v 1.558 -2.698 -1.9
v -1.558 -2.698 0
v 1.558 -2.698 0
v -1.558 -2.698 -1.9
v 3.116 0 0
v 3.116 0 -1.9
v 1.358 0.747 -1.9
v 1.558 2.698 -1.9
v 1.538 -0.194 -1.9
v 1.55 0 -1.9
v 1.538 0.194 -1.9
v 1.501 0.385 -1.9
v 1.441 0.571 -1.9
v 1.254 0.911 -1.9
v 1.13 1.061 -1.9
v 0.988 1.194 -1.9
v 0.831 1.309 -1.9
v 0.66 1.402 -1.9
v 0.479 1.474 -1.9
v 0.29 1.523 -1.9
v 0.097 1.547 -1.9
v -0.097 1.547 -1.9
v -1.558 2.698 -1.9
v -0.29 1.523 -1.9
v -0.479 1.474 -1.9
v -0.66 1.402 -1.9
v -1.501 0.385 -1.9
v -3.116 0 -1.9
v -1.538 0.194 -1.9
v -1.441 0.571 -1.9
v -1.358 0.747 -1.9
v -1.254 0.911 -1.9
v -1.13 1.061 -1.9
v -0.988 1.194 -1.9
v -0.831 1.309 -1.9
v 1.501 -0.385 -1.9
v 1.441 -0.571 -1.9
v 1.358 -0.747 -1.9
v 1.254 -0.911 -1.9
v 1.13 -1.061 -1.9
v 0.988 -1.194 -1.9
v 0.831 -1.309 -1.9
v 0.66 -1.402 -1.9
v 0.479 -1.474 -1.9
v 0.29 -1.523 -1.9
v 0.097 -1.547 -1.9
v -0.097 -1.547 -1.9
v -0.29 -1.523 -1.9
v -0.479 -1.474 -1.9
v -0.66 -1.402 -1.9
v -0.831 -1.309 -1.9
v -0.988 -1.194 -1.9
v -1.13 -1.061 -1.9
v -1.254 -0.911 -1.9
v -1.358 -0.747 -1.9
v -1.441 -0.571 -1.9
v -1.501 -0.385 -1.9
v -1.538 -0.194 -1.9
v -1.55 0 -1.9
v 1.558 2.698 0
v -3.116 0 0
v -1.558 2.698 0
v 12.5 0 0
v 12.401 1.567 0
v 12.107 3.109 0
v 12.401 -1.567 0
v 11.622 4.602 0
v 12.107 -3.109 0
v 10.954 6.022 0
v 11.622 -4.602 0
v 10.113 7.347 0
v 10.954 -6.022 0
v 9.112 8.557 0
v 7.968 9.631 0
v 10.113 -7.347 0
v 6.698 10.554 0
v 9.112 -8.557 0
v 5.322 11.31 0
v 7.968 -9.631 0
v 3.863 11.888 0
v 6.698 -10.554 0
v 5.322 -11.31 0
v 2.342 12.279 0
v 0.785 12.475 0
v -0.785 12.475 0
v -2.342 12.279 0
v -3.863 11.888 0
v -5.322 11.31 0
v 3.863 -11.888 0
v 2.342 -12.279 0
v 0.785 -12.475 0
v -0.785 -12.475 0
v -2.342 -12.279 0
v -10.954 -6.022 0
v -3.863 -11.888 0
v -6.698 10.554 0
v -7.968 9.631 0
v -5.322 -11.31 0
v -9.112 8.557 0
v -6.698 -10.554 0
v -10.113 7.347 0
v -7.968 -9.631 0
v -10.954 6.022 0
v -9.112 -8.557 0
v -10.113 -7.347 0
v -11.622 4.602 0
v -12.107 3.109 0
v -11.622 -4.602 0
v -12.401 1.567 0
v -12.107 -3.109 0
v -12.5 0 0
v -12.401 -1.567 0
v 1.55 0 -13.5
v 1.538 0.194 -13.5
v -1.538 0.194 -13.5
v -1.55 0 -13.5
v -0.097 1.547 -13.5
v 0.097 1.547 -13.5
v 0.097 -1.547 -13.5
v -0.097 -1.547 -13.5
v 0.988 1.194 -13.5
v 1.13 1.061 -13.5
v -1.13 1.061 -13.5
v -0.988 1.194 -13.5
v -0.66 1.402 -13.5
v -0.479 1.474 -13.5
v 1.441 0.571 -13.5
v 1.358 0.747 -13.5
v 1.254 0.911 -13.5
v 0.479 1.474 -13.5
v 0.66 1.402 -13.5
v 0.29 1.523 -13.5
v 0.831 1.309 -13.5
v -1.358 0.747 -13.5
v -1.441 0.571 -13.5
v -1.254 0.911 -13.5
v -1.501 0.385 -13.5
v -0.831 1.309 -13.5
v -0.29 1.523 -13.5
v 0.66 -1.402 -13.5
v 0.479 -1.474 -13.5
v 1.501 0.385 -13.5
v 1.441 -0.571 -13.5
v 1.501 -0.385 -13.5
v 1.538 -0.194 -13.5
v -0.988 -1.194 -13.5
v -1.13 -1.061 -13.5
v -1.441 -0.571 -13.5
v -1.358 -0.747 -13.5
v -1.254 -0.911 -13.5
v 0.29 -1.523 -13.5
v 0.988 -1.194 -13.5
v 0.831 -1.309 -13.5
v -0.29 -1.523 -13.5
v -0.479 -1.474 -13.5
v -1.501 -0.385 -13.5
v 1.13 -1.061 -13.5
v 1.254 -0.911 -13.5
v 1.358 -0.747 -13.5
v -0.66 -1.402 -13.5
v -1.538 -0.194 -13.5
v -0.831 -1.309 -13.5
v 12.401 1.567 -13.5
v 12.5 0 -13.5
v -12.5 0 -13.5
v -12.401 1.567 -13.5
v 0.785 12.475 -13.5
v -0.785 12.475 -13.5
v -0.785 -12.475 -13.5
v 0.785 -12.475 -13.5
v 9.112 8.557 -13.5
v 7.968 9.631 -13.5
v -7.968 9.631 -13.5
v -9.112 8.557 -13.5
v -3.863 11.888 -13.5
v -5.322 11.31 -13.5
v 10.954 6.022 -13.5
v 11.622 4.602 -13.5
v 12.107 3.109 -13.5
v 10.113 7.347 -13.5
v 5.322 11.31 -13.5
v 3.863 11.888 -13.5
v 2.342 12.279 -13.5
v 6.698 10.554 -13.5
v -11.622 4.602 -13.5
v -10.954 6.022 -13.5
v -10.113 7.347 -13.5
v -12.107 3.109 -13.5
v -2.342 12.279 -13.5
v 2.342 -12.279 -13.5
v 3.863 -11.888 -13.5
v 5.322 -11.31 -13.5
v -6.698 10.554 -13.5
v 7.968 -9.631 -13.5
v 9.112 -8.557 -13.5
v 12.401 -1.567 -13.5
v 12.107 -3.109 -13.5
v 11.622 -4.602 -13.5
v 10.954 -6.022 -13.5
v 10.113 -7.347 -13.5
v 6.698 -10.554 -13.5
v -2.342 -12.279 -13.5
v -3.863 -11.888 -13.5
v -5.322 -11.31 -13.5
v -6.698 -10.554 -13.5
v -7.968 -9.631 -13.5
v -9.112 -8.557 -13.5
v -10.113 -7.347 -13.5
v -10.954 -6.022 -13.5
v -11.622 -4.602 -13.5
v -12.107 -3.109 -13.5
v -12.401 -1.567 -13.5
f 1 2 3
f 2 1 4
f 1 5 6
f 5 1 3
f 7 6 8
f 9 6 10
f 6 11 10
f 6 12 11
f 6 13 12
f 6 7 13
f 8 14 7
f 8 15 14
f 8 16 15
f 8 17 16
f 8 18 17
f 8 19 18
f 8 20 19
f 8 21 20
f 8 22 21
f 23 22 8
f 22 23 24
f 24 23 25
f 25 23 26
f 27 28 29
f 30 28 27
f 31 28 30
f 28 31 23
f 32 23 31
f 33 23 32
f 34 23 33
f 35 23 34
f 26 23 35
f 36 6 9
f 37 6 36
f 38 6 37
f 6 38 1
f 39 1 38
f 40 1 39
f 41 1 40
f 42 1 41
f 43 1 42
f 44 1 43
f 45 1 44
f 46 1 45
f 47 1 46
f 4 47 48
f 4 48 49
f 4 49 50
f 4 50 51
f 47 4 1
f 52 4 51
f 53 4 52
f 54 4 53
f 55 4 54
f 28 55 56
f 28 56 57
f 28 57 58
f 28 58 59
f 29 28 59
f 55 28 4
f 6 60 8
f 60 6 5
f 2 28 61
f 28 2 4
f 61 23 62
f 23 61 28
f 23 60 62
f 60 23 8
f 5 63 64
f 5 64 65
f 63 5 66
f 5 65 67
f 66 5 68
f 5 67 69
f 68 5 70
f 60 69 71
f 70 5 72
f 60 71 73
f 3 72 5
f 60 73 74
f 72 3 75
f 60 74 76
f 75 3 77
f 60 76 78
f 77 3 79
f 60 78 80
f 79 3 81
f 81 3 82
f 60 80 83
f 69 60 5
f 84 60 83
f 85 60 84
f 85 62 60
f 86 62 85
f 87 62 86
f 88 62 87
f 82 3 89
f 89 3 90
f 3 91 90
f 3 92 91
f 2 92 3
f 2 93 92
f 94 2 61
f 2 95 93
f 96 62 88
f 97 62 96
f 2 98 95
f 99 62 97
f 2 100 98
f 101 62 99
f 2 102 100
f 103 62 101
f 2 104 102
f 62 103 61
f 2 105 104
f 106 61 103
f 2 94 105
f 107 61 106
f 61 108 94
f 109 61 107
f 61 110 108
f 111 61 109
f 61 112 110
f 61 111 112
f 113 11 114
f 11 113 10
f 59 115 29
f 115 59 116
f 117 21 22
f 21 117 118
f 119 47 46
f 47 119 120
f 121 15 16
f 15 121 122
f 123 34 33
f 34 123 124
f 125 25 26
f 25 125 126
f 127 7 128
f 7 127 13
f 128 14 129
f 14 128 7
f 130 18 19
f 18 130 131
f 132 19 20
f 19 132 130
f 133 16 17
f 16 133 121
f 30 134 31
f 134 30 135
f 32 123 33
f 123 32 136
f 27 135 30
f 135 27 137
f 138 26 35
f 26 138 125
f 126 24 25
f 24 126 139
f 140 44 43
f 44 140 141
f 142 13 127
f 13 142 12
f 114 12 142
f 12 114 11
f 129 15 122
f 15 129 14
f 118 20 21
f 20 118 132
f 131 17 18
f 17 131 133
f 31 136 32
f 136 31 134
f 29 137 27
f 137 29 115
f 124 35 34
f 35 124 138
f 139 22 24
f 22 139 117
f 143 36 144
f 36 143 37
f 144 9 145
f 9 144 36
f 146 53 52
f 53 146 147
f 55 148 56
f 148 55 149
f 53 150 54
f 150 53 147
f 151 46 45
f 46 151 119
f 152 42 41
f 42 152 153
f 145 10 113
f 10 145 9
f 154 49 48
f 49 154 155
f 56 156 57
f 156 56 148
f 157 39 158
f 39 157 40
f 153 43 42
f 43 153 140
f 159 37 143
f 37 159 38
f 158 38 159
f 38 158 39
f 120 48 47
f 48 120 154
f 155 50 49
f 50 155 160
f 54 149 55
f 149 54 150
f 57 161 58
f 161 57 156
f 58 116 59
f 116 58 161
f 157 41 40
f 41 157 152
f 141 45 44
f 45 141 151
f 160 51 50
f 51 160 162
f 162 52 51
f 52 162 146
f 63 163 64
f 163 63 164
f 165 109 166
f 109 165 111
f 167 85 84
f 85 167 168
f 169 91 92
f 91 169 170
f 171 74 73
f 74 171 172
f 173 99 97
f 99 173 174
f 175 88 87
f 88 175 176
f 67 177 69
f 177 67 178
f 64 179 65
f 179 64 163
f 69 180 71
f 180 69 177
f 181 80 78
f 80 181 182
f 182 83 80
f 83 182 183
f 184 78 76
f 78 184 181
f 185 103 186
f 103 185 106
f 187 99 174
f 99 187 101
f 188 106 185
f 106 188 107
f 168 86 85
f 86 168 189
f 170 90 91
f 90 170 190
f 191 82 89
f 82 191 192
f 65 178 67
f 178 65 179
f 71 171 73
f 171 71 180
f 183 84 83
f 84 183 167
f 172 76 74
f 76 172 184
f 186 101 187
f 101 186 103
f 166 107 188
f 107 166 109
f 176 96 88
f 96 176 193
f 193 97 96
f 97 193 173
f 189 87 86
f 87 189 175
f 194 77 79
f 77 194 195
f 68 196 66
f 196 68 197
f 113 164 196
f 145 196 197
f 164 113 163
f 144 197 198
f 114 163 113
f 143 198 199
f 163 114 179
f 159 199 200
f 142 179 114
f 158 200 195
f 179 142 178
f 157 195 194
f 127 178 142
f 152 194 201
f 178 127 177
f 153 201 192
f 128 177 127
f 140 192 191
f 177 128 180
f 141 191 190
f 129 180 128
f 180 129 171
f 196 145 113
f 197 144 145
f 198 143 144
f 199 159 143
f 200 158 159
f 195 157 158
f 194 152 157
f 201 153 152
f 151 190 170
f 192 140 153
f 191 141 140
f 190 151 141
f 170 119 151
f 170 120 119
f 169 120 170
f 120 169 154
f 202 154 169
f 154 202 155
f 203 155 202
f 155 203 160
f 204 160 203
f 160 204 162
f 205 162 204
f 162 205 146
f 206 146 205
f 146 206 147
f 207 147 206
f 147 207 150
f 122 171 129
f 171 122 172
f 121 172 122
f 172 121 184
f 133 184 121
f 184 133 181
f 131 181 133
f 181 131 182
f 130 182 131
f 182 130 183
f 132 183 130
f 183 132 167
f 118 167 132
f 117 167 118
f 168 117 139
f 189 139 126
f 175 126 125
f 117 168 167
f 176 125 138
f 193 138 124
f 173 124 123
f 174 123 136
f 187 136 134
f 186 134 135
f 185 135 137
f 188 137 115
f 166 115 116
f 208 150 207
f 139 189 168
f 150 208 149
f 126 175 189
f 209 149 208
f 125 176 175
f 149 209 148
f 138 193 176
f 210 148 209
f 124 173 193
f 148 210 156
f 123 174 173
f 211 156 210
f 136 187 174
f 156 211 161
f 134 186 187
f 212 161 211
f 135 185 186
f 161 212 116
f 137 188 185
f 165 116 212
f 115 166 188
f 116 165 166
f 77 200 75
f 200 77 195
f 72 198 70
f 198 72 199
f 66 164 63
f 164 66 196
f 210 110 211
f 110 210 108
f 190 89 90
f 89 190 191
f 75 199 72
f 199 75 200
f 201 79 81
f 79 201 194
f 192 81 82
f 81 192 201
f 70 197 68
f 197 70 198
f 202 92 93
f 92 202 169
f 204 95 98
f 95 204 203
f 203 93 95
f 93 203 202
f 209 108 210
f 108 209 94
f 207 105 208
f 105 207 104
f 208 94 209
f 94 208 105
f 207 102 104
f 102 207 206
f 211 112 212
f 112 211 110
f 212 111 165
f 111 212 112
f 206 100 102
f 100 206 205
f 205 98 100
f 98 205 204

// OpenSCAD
$fn = 50;

difference() {
	union() {
		translate(v = [0, 0, -13.5]) {
			cylinder(h = 13.5, r = 12.5);
		}
	}
	union() {
		translate(v = [0, 0, 0]) {
			rotate(a = [0, 0, 0]) {
				difference() {
					union() {
						translate(v = [0, 0, -1.9]) {
							linear_extrude(height = 1.9) {
								polygon(points = [[3.1158, 0.0], [1.5579000000000005, 2.698361953111554], [-1.5578999999999994, 2.6983619531115544], [-3.1158, 3.815754496783323e-16], [-1.5579000000000014, -2.6983619531115535], [1.557899999999998, -2.6983619531115552]]);
							}
						}
					}
					union();
				}
			}
		}
		#translate(v = [0, 0, -100.0]) {
			cylinder(h = 200, r = 1.55);
		}
	}
}
